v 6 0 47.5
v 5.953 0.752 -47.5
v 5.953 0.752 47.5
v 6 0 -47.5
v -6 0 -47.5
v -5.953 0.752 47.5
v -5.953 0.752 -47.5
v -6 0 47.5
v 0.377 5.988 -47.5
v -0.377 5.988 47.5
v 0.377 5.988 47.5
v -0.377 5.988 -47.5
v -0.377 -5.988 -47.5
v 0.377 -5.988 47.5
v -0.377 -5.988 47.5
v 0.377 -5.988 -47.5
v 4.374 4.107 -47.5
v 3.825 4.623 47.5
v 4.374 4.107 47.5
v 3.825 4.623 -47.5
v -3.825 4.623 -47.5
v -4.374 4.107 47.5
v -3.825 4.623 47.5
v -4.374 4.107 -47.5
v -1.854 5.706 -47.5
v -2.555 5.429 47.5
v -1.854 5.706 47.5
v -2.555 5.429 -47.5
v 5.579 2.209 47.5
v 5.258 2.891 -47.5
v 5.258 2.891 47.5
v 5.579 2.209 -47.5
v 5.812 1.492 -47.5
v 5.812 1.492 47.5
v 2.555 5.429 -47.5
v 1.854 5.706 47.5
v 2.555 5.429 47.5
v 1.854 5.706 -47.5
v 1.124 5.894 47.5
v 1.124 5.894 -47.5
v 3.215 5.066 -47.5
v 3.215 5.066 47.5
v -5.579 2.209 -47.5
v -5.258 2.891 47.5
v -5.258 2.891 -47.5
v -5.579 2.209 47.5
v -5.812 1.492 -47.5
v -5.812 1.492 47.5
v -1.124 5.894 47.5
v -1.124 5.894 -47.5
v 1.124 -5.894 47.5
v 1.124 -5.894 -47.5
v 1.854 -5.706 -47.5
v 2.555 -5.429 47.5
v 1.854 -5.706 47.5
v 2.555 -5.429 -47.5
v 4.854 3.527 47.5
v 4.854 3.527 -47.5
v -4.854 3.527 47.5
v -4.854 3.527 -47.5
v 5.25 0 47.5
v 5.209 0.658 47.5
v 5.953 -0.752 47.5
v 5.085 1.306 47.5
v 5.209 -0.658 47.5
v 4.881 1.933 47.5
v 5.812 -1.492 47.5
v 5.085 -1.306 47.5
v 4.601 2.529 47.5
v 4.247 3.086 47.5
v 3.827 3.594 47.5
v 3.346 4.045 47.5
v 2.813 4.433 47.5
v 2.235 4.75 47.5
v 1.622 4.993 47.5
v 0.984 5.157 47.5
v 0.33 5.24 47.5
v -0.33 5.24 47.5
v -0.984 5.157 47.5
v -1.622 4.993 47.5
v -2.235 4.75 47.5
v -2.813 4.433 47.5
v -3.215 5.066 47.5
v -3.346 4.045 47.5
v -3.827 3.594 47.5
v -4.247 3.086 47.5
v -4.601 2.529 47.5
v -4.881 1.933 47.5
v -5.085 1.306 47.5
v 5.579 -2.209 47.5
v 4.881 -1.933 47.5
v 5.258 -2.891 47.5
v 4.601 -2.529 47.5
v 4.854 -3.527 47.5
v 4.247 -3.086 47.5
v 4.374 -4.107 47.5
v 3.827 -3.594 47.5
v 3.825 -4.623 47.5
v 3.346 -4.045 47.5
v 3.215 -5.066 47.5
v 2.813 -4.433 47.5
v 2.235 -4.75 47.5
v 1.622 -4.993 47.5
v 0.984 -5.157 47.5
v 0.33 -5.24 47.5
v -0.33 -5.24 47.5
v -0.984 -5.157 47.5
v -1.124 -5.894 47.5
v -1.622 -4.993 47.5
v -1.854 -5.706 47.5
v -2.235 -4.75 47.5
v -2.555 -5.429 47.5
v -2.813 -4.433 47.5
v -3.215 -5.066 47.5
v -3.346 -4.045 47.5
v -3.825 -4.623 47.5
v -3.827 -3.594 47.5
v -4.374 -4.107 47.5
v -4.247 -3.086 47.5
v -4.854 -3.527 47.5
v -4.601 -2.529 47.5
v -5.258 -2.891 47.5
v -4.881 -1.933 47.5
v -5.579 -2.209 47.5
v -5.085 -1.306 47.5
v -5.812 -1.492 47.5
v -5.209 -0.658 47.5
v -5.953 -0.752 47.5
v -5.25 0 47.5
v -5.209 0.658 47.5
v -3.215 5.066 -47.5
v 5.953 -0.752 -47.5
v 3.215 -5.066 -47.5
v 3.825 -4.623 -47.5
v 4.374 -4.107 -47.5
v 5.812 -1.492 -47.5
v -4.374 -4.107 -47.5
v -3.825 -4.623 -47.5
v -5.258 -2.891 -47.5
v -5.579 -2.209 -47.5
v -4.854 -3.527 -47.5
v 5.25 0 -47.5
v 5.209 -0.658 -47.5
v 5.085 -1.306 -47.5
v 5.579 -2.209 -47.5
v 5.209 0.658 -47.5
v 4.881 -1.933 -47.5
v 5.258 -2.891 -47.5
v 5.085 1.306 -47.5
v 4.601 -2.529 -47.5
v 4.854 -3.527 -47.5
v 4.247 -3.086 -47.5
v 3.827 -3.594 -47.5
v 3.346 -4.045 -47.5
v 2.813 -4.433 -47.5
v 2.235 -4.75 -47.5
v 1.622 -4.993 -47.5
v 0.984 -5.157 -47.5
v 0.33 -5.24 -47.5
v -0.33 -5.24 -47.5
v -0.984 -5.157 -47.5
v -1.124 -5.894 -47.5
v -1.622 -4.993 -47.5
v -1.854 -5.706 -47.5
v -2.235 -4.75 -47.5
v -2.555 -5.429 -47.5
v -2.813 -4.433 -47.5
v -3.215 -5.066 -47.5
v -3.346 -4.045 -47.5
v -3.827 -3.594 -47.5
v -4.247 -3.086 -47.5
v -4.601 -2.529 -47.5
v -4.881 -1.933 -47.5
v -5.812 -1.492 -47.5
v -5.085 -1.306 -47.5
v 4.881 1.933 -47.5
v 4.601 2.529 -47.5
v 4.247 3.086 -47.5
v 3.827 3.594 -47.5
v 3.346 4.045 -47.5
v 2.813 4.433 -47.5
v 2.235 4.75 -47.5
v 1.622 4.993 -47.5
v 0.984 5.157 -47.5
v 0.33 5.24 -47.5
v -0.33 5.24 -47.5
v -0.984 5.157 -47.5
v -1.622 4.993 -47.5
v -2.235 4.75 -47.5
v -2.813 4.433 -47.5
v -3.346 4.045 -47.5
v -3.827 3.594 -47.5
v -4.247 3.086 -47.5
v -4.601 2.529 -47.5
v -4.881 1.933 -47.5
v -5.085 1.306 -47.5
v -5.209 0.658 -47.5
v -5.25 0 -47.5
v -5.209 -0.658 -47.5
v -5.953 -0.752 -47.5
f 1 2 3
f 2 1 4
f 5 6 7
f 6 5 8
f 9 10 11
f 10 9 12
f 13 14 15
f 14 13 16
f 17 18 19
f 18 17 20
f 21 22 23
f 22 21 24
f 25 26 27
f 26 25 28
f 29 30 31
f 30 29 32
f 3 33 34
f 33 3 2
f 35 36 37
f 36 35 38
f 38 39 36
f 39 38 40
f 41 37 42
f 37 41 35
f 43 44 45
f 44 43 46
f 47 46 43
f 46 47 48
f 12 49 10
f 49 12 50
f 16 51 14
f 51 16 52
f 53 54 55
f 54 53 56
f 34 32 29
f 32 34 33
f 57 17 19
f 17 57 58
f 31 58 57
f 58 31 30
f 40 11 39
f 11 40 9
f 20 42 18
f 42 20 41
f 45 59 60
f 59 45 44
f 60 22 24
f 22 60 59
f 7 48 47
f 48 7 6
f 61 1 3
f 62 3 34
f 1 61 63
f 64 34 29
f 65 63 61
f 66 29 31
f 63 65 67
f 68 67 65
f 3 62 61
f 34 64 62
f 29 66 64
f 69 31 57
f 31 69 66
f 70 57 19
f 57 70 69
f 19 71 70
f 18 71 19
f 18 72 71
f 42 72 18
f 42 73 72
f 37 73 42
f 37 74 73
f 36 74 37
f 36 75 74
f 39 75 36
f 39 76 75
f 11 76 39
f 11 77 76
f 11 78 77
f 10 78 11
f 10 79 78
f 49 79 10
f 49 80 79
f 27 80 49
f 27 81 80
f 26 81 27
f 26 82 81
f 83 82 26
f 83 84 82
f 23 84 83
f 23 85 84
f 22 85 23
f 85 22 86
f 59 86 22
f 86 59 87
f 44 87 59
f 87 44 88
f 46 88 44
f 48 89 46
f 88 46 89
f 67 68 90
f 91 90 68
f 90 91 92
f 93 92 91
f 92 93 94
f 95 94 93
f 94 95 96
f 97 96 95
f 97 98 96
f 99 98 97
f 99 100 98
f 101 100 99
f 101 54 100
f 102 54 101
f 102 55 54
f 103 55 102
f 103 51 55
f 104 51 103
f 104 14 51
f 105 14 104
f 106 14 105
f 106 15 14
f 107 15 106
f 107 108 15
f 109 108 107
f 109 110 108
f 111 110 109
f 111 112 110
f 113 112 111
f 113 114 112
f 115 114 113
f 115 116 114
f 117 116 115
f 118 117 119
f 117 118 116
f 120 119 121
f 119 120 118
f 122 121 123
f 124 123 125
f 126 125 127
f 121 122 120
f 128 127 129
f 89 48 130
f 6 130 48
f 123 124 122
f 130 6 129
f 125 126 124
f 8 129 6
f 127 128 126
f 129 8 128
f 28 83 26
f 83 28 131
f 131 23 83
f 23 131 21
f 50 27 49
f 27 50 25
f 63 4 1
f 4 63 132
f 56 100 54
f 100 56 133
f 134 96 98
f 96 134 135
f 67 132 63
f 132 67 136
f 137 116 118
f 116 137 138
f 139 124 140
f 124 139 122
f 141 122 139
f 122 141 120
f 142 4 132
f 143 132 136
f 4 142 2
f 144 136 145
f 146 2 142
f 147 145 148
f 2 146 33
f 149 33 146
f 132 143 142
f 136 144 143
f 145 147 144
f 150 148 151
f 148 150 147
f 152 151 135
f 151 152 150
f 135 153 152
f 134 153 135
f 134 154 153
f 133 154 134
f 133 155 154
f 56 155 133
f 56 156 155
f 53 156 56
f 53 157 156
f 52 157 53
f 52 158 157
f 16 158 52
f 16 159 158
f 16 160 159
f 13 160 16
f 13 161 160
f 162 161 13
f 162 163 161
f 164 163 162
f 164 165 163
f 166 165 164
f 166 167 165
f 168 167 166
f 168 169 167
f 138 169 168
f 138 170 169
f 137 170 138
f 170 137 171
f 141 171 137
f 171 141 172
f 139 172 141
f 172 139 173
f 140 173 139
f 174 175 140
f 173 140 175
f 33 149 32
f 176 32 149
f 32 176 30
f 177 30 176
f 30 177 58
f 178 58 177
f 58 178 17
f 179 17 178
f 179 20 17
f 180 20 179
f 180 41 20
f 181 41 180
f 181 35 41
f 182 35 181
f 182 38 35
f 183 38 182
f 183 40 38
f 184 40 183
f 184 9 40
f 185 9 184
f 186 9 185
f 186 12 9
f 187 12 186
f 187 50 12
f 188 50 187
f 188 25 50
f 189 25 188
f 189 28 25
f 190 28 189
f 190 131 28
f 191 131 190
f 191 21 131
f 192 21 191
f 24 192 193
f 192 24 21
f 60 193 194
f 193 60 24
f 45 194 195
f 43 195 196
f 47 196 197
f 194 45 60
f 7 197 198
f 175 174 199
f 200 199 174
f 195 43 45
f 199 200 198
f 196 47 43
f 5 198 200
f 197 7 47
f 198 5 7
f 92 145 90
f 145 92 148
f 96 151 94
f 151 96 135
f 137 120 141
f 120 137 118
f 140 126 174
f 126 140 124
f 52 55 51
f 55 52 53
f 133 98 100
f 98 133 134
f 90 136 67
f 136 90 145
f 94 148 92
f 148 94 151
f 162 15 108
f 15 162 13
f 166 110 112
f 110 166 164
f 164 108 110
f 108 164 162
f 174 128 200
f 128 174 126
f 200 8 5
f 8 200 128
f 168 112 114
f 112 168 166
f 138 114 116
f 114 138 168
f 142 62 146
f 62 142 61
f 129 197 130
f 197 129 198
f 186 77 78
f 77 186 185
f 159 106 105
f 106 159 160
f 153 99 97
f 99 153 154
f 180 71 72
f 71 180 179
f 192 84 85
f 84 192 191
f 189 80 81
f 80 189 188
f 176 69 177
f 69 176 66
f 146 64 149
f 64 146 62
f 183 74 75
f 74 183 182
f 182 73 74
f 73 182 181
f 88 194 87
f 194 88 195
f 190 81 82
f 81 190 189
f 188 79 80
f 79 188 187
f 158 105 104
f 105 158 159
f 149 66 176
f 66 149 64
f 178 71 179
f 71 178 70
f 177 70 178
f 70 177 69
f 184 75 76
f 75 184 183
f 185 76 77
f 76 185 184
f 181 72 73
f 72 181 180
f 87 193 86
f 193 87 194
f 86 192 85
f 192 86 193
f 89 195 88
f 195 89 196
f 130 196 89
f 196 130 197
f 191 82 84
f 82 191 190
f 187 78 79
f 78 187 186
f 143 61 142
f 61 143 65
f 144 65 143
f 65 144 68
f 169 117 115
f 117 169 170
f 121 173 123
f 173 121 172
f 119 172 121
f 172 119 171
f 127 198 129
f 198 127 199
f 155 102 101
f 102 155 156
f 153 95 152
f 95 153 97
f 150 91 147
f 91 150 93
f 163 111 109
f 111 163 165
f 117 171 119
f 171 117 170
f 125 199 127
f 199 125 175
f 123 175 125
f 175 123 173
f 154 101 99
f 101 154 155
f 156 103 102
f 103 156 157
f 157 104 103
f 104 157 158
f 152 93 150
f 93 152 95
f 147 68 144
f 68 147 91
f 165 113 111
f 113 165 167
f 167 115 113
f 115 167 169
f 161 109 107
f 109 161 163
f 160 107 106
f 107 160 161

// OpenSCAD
$fn = 50;


difference() {
	union() {
		translate(v = [0, 0, -47.5000000000]) {
			cylinder(h = 95, r = 6.0000000000);
		}
	}
	union() {
		translate(v = [0, 0, -100.0000000000]) {
			cylinder(h = 200, r = 5.2500000000);
		}
	}
}
